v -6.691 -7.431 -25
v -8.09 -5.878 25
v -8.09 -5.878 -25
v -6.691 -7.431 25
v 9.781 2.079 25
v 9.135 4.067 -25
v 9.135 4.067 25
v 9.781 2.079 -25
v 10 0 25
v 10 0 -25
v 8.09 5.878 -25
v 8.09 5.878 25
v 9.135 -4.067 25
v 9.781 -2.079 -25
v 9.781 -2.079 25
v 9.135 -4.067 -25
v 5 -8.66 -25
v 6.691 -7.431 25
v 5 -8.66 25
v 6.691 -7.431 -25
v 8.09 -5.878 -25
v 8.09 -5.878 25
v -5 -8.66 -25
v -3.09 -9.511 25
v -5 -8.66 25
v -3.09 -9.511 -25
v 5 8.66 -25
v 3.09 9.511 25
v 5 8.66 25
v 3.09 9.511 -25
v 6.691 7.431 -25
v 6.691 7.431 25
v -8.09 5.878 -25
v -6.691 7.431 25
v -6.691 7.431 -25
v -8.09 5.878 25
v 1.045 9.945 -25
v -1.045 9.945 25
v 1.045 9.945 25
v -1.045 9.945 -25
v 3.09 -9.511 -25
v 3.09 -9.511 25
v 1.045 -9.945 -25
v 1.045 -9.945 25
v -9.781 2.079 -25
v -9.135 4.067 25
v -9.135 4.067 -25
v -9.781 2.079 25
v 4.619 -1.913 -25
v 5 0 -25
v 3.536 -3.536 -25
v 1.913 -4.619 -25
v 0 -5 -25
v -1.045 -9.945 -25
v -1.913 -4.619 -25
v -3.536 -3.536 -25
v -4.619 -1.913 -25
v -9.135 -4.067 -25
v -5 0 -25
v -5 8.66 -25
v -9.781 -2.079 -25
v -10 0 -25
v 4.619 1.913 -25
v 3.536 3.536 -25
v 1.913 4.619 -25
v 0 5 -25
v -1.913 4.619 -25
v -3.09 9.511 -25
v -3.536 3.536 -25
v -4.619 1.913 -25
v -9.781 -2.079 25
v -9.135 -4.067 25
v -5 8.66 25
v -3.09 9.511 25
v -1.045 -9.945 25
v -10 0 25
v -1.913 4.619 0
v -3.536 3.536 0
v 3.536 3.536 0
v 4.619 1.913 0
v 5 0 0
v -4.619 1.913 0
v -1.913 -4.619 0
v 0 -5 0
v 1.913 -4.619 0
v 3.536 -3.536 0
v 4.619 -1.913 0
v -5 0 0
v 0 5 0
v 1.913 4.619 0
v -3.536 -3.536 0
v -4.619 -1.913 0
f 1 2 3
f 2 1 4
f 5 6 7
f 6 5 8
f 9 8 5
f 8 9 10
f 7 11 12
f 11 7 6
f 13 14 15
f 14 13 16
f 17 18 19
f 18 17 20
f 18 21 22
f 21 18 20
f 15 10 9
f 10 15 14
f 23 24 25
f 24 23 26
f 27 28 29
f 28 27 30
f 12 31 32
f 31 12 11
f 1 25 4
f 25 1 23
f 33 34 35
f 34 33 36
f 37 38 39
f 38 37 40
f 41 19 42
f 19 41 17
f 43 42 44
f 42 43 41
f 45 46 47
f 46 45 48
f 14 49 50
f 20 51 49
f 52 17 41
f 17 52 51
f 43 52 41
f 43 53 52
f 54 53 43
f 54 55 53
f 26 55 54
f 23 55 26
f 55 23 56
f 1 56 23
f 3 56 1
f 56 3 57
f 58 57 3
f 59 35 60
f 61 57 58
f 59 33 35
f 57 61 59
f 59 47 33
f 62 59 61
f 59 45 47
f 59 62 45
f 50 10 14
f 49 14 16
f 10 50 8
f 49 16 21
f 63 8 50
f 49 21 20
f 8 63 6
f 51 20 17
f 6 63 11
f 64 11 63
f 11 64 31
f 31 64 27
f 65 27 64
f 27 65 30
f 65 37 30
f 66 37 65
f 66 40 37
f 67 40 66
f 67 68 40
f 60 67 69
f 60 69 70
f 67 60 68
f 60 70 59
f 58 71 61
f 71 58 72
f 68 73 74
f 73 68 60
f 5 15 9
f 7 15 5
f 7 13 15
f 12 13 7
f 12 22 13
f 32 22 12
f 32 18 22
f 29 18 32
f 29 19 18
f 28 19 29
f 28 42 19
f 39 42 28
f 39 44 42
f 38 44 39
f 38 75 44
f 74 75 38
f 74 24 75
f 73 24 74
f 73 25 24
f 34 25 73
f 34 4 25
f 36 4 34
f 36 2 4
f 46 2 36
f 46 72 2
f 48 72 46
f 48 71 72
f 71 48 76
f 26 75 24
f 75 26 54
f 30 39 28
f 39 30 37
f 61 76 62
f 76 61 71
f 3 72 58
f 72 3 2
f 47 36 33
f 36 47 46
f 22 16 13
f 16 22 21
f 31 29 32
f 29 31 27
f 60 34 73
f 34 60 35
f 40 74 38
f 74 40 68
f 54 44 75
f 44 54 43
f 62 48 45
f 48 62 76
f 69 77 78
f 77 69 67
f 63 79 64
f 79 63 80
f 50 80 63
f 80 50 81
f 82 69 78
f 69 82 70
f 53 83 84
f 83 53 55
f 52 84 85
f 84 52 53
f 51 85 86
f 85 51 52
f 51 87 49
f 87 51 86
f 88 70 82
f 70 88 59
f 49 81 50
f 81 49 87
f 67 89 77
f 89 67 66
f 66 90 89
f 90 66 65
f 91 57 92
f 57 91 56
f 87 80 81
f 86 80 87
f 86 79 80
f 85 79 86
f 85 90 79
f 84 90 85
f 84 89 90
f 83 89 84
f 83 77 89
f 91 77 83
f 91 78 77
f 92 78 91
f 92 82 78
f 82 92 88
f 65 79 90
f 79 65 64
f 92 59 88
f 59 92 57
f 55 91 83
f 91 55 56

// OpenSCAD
// Central Shaft
module central_shaft() {
    difference() {
        // Outer cylinder
        cylinder(h = 50, r = 10, center = true);
        // Inner hollow
        translate([0, 0, -25])
            cylinder(h = 50, r = 5, center = true);
    }
}

// Render the central shaft
central_shaft();
